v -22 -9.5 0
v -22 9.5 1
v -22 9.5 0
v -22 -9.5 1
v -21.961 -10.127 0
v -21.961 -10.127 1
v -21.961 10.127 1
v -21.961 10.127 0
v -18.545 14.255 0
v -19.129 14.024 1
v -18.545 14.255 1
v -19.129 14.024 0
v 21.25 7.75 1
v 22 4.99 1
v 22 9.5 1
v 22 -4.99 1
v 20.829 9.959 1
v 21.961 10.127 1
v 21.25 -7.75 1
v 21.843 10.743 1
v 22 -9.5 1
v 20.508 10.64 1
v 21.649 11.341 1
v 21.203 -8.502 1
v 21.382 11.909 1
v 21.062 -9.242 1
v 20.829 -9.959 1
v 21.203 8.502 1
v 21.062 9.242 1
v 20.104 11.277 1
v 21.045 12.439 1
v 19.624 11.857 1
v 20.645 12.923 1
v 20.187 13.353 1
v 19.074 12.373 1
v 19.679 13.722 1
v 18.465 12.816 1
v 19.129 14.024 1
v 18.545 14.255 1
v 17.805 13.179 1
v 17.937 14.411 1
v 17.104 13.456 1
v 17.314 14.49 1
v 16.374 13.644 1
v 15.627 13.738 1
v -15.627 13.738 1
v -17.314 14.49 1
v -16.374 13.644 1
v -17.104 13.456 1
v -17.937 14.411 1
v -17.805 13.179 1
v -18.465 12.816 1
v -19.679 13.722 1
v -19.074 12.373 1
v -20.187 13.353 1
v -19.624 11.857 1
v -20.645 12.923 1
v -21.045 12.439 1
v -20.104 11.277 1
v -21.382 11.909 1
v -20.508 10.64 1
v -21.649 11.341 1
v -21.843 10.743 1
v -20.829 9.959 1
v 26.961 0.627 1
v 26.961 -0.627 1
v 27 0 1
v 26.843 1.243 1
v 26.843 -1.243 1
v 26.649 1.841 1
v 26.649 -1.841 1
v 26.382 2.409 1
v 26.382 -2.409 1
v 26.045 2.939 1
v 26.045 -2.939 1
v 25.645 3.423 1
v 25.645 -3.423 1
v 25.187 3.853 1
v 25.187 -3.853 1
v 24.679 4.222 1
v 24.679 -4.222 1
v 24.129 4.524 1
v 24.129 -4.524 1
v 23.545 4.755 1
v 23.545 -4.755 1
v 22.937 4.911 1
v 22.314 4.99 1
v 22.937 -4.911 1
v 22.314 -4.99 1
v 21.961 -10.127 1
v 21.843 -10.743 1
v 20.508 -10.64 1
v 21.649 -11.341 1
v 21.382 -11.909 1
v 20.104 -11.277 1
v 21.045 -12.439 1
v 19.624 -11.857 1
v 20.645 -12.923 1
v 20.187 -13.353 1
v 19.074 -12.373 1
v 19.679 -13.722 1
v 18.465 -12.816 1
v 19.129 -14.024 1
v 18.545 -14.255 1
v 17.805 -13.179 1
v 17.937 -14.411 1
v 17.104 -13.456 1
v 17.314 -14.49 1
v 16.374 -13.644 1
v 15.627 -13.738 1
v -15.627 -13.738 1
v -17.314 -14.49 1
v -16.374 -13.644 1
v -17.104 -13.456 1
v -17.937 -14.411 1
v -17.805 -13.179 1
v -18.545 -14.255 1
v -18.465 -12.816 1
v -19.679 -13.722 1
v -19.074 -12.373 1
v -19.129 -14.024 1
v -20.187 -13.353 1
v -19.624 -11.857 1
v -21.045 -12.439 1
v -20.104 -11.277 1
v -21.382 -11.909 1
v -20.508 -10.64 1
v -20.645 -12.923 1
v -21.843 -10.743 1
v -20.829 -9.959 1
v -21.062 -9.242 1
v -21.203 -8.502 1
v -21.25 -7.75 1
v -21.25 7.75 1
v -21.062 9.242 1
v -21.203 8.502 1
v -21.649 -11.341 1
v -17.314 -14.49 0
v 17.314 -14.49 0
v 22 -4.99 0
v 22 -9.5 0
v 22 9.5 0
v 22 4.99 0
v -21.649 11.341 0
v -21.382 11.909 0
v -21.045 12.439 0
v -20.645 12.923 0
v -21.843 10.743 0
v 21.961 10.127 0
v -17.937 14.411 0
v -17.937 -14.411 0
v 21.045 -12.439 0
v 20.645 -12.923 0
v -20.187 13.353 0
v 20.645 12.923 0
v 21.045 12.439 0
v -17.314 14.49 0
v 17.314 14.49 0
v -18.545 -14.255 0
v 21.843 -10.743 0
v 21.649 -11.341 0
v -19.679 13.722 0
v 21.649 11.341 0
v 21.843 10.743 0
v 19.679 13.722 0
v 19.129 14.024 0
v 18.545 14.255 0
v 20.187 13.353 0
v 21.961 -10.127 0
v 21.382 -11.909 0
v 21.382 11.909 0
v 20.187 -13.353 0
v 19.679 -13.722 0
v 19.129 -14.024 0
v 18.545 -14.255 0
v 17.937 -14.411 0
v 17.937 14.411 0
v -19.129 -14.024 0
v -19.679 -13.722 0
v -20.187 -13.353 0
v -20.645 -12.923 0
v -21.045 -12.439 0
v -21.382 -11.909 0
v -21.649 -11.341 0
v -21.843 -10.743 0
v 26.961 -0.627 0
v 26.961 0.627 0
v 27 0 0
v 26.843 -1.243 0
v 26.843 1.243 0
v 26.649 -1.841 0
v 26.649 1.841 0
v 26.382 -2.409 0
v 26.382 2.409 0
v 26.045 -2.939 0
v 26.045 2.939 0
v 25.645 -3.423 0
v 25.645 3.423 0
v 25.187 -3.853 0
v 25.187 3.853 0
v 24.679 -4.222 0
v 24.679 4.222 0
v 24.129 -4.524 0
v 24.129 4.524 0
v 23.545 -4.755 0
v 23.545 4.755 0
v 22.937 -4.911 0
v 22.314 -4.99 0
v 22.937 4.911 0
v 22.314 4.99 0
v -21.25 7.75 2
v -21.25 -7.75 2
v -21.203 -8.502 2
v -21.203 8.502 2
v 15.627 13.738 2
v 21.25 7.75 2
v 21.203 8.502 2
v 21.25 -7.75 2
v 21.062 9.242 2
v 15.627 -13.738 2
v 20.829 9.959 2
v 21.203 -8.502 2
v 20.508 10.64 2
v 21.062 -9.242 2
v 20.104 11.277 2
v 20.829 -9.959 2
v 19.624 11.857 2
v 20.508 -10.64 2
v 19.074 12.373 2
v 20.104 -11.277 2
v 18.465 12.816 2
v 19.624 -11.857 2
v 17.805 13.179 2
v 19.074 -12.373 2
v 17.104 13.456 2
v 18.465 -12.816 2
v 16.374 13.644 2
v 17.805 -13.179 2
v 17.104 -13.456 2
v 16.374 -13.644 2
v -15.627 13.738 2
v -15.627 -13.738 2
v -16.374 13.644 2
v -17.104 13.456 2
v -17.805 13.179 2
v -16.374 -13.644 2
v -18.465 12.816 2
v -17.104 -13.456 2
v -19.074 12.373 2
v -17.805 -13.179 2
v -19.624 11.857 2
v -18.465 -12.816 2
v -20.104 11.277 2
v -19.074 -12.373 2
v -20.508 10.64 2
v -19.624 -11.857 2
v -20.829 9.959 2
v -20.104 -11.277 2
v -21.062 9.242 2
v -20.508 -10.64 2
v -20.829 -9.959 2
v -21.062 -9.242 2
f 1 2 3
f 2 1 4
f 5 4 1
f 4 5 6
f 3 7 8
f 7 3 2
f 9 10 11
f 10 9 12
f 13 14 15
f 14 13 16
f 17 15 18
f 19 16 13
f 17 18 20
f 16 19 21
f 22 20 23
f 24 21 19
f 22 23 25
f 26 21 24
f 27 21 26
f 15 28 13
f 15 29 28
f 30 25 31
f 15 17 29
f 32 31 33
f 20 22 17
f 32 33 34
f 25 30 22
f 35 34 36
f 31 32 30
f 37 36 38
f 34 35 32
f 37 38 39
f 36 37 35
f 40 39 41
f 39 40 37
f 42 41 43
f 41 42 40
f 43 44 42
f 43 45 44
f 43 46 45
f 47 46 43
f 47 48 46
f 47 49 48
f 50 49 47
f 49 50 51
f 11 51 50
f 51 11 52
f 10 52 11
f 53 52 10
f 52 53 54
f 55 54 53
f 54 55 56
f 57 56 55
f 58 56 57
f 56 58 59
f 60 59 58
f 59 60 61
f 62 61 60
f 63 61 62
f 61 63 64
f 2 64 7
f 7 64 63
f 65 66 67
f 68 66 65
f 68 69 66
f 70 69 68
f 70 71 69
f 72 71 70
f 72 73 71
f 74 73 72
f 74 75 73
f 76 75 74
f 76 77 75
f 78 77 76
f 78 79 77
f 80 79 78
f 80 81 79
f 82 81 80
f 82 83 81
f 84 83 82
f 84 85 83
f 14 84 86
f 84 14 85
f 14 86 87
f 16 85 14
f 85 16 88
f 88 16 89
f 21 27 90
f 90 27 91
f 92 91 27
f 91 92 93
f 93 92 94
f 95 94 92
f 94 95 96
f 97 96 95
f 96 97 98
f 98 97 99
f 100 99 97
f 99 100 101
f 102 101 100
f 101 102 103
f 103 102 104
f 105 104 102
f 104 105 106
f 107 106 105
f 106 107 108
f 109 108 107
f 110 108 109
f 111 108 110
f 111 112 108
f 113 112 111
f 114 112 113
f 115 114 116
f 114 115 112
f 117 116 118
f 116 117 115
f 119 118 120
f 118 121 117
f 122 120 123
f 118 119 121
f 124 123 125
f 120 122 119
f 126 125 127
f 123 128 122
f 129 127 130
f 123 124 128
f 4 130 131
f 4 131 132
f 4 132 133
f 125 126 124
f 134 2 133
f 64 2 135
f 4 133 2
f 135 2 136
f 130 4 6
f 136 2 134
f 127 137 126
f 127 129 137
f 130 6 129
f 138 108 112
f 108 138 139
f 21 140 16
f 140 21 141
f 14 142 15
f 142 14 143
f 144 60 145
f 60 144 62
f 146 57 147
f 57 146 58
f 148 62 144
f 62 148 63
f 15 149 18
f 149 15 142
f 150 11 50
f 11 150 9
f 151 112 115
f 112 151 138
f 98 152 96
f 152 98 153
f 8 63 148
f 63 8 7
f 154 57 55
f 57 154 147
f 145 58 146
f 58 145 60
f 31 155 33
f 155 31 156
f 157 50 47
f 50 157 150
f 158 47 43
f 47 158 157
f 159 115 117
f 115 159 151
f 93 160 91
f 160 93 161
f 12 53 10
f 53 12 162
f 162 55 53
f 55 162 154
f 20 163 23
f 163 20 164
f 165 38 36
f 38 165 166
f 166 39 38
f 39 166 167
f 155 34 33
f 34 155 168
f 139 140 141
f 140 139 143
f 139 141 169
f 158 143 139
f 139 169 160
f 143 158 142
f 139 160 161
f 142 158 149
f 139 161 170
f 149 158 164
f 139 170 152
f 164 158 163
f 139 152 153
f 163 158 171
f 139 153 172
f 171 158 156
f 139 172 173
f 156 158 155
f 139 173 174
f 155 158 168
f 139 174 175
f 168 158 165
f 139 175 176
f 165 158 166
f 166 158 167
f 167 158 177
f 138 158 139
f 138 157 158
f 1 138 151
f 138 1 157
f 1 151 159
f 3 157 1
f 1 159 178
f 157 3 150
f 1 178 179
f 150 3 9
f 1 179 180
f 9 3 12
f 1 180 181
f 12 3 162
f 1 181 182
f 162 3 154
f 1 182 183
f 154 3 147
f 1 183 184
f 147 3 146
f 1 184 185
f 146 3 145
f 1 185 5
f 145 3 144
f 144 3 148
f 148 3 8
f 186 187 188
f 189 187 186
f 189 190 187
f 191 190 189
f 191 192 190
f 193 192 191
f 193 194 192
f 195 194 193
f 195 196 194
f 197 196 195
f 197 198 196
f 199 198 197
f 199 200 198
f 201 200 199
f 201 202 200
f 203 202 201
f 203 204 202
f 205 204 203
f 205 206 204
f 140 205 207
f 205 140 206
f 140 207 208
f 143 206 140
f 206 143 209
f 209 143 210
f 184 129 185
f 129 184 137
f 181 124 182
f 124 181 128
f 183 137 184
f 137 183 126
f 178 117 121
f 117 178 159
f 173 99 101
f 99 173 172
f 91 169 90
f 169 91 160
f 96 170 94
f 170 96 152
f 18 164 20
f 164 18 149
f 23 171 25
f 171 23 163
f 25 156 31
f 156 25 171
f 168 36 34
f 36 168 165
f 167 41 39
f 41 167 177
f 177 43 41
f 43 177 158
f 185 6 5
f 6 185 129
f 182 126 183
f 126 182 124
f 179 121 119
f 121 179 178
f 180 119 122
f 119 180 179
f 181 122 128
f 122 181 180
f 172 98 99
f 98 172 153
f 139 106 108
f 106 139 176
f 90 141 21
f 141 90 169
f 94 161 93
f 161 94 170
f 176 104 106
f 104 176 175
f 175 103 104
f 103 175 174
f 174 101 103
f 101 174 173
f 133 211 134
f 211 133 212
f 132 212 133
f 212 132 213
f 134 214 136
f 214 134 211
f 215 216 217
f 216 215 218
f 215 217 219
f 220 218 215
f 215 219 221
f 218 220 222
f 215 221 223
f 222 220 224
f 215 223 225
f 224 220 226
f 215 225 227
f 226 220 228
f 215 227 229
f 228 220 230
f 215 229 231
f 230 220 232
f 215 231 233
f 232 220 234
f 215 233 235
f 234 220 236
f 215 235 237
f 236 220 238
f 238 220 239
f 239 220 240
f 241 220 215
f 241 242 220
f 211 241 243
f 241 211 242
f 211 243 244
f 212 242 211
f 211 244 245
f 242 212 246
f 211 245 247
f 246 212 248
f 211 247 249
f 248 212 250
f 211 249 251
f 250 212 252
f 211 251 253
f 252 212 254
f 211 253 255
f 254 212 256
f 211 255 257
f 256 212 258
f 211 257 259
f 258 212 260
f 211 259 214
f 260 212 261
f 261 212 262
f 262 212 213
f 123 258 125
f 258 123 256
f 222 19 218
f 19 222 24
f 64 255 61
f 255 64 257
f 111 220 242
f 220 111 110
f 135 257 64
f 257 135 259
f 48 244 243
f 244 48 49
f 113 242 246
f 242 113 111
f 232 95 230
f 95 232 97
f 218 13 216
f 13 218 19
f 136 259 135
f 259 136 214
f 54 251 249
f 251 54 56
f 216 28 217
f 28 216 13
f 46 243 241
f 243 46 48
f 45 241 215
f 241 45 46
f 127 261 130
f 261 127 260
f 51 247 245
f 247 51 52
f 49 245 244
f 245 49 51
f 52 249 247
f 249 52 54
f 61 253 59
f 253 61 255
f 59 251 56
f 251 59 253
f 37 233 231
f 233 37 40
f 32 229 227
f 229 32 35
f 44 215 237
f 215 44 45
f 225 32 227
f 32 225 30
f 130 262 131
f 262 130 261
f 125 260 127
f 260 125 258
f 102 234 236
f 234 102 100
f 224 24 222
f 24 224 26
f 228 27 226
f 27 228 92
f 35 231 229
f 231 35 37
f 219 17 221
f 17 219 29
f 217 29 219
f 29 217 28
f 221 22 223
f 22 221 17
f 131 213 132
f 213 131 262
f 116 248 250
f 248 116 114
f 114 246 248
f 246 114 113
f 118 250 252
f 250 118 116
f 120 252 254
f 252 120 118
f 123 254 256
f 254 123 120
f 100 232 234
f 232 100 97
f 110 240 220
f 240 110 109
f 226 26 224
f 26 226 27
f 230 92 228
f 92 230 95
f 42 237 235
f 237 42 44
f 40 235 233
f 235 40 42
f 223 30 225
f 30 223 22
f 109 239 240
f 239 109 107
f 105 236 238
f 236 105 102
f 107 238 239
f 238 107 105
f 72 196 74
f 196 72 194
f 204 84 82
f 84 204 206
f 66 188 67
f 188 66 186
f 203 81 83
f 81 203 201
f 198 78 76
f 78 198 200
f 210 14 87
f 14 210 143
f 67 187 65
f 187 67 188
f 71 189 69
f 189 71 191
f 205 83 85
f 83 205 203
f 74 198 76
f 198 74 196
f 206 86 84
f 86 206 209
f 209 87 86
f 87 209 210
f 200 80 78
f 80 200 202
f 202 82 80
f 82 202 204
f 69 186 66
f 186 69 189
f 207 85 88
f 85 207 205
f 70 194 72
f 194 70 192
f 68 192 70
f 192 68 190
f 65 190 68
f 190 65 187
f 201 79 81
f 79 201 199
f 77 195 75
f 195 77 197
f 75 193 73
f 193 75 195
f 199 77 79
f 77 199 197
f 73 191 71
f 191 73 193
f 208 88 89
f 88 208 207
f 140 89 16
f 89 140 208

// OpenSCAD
$fn = 50;


difference() {
	union() {
		translate(v = [0, 0, 0]) {
			rotate(a = [0, 0, 0]) {
				hull() {
					translate(v = [-17.0000000000, 9.5000000000, 0]) {
						rotate(a = [0, 0, 0]) {
							translate(v = [0, 0, 0]) {
								rotate(a = [0, 0, 0]) {
									cylinder(h = 1, r = 5);
								}
							}
						}
					}
					translate(v = [17.0000000000, 9.5000000000, 0]) {
						rotate(a = [0, 0, 0]) {
							translate(v = [0, 0, 0]) {
								rotate(a = [0, 0, 0]) {
									cylinder(h = 1, r = 5);
								}
							}
						}
					}
					translate(v = [-17.0000000000, -9.5000000000, 0]) {
						rotate(a = [0, 0, 0]) {
							translate(v = [0, 0, 0]) {
								rotate(a = [0, 0, 0]) {
									cylinder(h = 1, r = 5);
								}
							}
						}
					}
					translate(v = [17.0000000000, -9.5000000000, 0]) {
						rotate(a = [0, 0, 0]) {
							translate(v = [0, 0, 0]) {
								rotate(a = [0, 0, 0]) {
									cylinder(h = 1, r = 5);
								}
							}
						}
					}
				}
			}
		}
		translate(v = [0, 0, 0]) {
			rotate(a = [0, 0, 0]) {
				hull() {
					translate(v = [-15.2500000000, 7.7500000000, 0]) {
						rotate(a = [0, 0, 0]) {
							translate(v = [0, 0, 0]) {
								rotate(a = [0, 0, 0]) {
									cylinder(h = 2, r = 6);
								}
							}
						}
					}
					translate(v = [15.2500000000, 7.7500000000, 0]) {
						rotate(a = [0, 0, 0]) {
							translate(v = [0, 0, 0]) {
								rotate(a = [0, 0, 0]) {
									cylinder(h = 2, r = 6);
								}
							}
						}
					}
					translate(v = [-15.2500000000, -7.7500000000, 0]) {
						rotate(a = [0, 0, 0]) {
							translate(v = [0, 0, 0]) {
								rotate(a = [0, 0, 0]) {
									cylinder(h = 2, r = 6);
								}
							}
						}
					}
					translate(v = [15.2500000000, -7.7500000000, 0]) {
						rotate(a = [0, 0, 0]) {
							translate(v = [0, 0, 0]) {
								rotate(a = [0, 0, 0]) {
									cylinder(h = 2, r = 6);
								}
							}
						}
					}
				}
			}
		}
		translate(v = [22.0000000000, 0, 0.0000000000]) {
			rotate(a = [0, 0, 0]) {
				cylinder(h = 1, r = 5);
			}
		}
	}
	union();
}
